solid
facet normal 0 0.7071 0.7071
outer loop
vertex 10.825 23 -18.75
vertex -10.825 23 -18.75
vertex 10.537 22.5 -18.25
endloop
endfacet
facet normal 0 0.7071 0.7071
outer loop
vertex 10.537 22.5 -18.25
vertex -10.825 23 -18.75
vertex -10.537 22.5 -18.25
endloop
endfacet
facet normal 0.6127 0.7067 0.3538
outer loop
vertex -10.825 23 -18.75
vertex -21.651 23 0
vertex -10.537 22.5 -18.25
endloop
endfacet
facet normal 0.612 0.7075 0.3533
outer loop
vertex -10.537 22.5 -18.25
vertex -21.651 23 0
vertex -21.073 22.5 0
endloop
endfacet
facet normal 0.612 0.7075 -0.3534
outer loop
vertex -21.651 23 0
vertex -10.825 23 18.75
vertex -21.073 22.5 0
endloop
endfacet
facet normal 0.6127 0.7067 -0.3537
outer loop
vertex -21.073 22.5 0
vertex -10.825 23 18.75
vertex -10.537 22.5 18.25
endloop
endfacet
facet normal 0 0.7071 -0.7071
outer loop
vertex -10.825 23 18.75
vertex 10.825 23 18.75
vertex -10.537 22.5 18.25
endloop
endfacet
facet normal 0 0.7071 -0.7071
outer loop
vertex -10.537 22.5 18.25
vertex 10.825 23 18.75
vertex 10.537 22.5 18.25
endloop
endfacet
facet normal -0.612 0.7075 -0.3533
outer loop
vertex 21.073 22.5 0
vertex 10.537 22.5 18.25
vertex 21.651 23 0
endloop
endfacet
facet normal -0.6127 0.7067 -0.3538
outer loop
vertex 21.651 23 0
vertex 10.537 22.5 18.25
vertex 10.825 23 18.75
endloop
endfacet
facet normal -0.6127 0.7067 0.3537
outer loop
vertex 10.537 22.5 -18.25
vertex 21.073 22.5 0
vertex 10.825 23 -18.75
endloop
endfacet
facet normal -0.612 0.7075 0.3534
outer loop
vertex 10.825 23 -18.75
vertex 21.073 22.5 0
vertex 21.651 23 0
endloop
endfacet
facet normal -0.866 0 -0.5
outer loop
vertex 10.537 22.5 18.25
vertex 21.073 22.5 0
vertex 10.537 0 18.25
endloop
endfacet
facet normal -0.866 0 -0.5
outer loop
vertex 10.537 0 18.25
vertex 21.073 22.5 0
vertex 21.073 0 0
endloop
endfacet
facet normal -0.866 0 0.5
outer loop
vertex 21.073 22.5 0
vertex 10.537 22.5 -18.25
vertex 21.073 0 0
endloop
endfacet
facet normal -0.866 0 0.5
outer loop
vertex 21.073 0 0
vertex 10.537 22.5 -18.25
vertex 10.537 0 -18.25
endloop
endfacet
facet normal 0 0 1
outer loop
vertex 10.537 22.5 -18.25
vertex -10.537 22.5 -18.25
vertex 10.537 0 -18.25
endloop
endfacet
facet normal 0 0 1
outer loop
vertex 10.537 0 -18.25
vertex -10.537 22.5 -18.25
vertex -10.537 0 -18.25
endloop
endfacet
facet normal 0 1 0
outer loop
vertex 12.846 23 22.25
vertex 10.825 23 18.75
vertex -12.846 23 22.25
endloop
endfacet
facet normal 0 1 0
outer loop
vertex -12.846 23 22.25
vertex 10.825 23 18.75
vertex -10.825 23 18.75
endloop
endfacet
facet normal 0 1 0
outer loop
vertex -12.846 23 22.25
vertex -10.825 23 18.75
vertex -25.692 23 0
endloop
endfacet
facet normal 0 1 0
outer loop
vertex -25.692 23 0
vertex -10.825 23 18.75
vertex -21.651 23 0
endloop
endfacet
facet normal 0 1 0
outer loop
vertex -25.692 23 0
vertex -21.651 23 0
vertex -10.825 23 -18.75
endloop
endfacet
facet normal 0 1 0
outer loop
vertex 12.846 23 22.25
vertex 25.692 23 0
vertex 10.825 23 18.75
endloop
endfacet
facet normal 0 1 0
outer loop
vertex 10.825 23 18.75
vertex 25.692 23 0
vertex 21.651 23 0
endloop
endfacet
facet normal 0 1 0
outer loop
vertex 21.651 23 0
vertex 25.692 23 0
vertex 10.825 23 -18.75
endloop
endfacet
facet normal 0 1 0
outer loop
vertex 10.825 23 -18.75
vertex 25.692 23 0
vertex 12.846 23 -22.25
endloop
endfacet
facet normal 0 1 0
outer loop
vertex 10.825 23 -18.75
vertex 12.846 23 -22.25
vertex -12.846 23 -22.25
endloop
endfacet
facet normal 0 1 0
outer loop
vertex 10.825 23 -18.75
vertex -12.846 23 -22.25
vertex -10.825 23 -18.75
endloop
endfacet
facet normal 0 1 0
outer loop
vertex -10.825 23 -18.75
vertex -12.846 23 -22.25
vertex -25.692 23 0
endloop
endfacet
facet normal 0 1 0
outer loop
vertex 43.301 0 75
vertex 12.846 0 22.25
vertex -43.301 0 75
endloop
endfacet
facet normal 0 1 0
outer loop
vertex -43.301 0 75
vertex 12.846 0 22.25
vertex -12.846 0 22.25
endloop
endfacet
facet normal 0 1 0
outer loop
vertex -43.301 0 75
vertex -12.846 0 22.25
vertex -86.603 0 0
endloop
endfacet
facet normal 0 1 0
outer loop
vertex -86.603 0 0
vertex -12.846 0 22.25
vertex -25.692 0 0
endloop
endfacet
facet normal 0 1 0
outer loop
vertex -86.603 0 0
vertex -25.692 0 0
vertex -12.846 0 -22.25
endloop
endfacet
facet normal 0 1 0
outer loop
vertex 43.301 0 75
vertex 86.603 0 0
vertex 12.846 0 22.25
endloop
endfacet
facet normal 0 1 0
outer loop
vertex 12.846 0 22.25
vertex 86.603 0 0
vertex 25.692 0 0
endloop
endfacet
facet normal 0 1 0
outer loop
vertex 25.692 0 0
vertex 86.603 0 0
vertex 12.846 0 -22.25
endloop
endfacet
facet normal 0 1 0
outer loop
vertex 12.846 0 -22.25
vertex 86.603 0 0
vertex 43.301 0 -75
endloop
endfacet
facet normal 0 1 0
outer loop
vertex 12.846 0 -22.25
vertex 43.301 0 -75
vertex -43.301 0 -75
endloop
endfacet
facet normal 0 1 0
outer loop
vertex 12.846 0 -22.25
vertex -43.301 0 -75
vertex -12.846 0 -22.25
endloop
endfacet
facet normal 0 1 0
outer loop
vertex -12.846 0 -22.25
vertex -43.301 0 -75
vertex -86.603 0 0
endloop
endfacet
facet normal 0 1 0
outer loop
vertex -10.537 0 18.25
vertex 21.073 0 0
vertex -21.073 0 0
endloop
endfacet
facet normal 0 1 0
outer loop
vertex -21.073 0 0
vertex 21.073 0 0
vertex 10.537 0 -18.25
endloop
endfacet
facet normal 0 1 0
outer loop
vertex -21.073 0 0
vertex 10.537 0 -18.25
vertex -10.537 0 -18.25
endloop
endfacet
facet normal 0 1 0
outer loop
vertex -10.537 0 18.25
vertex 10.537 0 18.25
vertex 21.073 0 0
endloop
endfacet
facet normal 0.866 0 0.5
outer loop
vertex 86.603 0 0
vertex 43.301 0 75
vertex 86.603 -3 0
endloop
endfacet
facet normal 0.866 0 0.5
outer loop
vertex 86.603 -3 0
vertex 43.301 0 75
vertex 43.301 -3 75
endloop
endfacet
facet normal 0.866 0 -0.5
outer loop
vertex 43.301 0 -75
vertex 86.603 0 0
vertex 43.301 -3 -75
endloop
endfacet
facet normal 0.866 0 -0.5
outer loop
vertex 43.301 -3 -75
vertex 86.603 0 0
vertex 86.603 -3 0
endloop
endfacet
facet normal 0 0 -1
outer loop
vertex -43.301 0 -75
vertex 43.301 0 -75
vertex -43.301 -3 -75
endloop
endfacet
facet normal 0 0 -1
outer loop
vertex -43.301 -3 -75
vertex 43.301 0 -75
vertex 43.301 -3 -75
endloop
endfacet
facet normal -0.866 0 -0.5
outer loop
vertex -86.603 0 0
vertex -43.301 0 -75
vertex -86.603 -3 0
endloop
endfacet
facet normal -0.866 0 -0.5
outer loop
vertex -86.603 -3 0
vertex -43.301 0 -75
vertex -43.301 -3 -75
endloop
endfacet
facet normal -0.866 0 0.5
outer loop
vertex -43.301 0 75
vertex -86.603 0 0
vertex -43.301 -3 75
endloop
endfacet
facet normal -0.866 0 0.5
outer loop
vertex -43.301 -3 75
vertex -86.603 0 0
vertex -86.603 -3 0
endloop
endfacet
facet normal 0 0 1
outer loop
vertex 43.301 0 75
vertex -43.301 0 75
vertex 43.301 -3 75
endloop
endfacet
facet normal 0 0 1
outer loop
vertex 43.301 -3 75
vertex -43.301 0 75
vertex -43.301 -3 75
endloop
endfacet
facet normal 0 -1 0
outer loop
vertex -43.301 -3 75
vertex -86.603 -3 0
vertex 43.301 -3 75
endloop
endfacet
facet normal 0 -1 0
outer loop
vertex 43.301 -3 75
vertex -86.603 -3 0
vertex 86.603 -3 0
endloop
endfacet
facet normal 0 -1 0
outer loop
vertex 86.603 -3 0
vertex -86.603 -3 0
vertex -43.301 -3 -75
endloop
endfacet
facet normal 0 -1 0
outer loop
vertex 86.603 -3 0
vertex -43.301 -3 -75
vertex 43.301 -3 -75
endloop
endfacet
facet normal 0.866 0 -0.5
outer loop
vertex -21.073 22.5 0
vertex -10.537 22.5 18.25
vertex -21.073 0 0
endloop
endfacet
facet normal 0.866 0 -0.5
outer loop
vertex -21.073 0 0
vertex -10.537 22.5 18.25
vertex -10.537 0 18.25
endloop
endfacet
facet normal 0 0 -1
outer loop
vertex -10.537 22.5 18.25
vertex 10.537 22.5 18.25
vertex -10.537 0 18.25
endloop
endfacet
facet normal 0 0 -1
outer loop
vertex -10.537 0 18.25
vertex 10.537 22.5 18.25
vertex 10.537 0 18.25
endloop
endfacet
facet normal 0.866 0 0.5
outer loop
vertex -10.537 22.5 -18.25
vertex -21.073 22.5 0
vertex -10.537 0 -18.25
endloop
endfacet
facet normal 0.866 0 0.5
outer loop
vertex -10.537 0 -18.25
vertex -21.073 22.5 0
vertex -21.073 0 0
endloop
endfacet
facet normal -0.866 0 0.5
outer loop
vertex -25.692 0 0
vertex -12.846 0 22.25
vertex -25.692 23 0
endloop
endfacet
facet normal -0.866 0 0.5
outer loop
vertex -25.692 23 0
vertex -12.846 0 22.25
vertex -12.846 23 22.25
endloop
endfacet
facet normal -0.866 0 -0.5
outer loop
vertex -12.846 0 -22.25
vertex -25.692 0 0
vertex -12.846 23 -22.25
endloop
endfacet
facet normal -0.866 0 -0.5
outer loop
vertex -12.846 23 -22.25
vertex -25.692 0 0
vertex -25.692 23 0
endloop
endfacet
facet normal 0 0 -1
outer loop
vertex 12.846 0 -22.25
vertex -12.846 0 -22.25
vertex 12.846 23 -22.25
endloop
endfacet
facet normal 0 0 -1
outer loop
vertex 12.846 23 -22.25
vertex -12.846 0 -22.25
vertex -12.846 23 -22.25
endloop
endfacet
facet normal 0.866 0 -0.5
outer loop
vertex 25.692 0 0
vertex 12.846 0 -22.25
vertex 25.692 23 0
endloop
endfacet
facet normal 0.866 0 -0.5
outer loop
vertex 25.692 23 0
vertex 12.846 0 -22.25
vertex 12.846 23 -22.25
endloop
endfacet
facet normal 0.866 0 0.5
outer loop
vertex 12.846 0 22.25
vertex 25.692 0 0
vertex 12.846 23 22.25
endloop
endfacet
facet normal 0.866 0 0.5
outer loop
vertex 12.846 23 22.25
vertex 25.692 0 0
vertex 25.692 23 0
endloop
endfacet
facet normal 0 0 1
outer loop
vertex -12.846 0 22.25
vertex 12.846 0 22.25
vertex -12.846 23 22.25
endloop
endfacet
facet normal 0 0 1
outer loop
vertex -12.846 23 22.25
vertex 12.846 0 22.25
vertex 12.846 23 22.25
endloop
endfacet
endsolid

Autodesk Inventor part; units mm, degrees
ref_plane "YZ Plane" through (0, 0, 0) normal (1, 0, 0) x (0, 1, 0)
ref_plane "XZ Plane" through (0, 0, 0) normal (0, 1, 0) x (-1, 0, 0)
ref_plane "XY Plane" through (0, 0, 0) normal (0, 0, 1) x (1, 0, 0)
sketch "Sketch1" plane through (0, 0, 0) normal (0, 1, 0) x (-1, 0, 0)
  line L0 (21.0733, 0) -> (10.5366, -18.25)
  line L1 (10.5366, -18.25) -> (-10.5366, -18.25)
  line L2 (-10.5366, -18.25) -> (-21.0733, 0)
  line L3 (-21.0733, 0) -> (-10.5366, 18.25)
  line L4 (-10.5366, 18.25) -> (10.5366, 18.25)
  line L5 (10.5366, 18.25) -> (21.0733, 0)
  line L6 (25.6921, 0) -> (12.846, -22.25)
  line L7 (12.846, -22.25) -> (-12.846, -22.25)
  line L8 (-12.846, -22.25) -> (-25.6921, 0)
  line L9 (-25.6921, 0) -> (-12.846, 22.25)
  line L10 (-12.846, 22.25) -> (12.846, 22.25)
  line L11 (12.846, 22.25) -> (25.6921, 0)
  line L12 (86.6025, 0) -> (43.3013, -75)
  line L13 (43.3013, -75) -> (-43.3013, -75)
  line L14 (-43.3013, -75) -> (-86.6025, 0)
  line L15 (-86.6025, 0) -> (-43.3013, 75)
  line L16 (-43.3013, 75) -> (43.3013, 75)
  line L17 (43.3013, 75) -> (86.6025, 0)
  point P0 (0, 0)
  point P1 (0, 0)
  dimension "d0" = 36.5
  dimension "d1" = 4
  dimension "d2" = 150
extrude "Extrusion1" add sketch "Sketch1" along normal blind 23 contours L6 L7 L8 L9 L10 L11
extrude "Extrusion2" add sketch "Sketch1" against normal blind 3 contours L0 L1 L2 L3 L4 L5 | L6 L7 L8 L9 L10 L11 | L12 L13 L14 L15 L16 L17
sketch "Sketch2" plane through (0, 0, 0) normal (0, 1, 0) x (1, 0, 0)
  circle A0 centre (0, 0) radius 9.85
  circle A1 centre (0, 0) radius 9
  dimension "d7" = 19.7
  dimension "d8" = 18
extrude "Extrusion3" [suppressed]
chamfer "Chamfer1" distance 0.5 angle 45 6 edges at (0, 23, 18.25) (-15.805, 23, 9.125) (-15.805, 23, -9.125) (0, 23, -18.25) (15.805, 23, -9.125) (15.805, 23, 9.125)
chamfer "Chamfer2" [suppressed]
properties part number "staender_tisch"
